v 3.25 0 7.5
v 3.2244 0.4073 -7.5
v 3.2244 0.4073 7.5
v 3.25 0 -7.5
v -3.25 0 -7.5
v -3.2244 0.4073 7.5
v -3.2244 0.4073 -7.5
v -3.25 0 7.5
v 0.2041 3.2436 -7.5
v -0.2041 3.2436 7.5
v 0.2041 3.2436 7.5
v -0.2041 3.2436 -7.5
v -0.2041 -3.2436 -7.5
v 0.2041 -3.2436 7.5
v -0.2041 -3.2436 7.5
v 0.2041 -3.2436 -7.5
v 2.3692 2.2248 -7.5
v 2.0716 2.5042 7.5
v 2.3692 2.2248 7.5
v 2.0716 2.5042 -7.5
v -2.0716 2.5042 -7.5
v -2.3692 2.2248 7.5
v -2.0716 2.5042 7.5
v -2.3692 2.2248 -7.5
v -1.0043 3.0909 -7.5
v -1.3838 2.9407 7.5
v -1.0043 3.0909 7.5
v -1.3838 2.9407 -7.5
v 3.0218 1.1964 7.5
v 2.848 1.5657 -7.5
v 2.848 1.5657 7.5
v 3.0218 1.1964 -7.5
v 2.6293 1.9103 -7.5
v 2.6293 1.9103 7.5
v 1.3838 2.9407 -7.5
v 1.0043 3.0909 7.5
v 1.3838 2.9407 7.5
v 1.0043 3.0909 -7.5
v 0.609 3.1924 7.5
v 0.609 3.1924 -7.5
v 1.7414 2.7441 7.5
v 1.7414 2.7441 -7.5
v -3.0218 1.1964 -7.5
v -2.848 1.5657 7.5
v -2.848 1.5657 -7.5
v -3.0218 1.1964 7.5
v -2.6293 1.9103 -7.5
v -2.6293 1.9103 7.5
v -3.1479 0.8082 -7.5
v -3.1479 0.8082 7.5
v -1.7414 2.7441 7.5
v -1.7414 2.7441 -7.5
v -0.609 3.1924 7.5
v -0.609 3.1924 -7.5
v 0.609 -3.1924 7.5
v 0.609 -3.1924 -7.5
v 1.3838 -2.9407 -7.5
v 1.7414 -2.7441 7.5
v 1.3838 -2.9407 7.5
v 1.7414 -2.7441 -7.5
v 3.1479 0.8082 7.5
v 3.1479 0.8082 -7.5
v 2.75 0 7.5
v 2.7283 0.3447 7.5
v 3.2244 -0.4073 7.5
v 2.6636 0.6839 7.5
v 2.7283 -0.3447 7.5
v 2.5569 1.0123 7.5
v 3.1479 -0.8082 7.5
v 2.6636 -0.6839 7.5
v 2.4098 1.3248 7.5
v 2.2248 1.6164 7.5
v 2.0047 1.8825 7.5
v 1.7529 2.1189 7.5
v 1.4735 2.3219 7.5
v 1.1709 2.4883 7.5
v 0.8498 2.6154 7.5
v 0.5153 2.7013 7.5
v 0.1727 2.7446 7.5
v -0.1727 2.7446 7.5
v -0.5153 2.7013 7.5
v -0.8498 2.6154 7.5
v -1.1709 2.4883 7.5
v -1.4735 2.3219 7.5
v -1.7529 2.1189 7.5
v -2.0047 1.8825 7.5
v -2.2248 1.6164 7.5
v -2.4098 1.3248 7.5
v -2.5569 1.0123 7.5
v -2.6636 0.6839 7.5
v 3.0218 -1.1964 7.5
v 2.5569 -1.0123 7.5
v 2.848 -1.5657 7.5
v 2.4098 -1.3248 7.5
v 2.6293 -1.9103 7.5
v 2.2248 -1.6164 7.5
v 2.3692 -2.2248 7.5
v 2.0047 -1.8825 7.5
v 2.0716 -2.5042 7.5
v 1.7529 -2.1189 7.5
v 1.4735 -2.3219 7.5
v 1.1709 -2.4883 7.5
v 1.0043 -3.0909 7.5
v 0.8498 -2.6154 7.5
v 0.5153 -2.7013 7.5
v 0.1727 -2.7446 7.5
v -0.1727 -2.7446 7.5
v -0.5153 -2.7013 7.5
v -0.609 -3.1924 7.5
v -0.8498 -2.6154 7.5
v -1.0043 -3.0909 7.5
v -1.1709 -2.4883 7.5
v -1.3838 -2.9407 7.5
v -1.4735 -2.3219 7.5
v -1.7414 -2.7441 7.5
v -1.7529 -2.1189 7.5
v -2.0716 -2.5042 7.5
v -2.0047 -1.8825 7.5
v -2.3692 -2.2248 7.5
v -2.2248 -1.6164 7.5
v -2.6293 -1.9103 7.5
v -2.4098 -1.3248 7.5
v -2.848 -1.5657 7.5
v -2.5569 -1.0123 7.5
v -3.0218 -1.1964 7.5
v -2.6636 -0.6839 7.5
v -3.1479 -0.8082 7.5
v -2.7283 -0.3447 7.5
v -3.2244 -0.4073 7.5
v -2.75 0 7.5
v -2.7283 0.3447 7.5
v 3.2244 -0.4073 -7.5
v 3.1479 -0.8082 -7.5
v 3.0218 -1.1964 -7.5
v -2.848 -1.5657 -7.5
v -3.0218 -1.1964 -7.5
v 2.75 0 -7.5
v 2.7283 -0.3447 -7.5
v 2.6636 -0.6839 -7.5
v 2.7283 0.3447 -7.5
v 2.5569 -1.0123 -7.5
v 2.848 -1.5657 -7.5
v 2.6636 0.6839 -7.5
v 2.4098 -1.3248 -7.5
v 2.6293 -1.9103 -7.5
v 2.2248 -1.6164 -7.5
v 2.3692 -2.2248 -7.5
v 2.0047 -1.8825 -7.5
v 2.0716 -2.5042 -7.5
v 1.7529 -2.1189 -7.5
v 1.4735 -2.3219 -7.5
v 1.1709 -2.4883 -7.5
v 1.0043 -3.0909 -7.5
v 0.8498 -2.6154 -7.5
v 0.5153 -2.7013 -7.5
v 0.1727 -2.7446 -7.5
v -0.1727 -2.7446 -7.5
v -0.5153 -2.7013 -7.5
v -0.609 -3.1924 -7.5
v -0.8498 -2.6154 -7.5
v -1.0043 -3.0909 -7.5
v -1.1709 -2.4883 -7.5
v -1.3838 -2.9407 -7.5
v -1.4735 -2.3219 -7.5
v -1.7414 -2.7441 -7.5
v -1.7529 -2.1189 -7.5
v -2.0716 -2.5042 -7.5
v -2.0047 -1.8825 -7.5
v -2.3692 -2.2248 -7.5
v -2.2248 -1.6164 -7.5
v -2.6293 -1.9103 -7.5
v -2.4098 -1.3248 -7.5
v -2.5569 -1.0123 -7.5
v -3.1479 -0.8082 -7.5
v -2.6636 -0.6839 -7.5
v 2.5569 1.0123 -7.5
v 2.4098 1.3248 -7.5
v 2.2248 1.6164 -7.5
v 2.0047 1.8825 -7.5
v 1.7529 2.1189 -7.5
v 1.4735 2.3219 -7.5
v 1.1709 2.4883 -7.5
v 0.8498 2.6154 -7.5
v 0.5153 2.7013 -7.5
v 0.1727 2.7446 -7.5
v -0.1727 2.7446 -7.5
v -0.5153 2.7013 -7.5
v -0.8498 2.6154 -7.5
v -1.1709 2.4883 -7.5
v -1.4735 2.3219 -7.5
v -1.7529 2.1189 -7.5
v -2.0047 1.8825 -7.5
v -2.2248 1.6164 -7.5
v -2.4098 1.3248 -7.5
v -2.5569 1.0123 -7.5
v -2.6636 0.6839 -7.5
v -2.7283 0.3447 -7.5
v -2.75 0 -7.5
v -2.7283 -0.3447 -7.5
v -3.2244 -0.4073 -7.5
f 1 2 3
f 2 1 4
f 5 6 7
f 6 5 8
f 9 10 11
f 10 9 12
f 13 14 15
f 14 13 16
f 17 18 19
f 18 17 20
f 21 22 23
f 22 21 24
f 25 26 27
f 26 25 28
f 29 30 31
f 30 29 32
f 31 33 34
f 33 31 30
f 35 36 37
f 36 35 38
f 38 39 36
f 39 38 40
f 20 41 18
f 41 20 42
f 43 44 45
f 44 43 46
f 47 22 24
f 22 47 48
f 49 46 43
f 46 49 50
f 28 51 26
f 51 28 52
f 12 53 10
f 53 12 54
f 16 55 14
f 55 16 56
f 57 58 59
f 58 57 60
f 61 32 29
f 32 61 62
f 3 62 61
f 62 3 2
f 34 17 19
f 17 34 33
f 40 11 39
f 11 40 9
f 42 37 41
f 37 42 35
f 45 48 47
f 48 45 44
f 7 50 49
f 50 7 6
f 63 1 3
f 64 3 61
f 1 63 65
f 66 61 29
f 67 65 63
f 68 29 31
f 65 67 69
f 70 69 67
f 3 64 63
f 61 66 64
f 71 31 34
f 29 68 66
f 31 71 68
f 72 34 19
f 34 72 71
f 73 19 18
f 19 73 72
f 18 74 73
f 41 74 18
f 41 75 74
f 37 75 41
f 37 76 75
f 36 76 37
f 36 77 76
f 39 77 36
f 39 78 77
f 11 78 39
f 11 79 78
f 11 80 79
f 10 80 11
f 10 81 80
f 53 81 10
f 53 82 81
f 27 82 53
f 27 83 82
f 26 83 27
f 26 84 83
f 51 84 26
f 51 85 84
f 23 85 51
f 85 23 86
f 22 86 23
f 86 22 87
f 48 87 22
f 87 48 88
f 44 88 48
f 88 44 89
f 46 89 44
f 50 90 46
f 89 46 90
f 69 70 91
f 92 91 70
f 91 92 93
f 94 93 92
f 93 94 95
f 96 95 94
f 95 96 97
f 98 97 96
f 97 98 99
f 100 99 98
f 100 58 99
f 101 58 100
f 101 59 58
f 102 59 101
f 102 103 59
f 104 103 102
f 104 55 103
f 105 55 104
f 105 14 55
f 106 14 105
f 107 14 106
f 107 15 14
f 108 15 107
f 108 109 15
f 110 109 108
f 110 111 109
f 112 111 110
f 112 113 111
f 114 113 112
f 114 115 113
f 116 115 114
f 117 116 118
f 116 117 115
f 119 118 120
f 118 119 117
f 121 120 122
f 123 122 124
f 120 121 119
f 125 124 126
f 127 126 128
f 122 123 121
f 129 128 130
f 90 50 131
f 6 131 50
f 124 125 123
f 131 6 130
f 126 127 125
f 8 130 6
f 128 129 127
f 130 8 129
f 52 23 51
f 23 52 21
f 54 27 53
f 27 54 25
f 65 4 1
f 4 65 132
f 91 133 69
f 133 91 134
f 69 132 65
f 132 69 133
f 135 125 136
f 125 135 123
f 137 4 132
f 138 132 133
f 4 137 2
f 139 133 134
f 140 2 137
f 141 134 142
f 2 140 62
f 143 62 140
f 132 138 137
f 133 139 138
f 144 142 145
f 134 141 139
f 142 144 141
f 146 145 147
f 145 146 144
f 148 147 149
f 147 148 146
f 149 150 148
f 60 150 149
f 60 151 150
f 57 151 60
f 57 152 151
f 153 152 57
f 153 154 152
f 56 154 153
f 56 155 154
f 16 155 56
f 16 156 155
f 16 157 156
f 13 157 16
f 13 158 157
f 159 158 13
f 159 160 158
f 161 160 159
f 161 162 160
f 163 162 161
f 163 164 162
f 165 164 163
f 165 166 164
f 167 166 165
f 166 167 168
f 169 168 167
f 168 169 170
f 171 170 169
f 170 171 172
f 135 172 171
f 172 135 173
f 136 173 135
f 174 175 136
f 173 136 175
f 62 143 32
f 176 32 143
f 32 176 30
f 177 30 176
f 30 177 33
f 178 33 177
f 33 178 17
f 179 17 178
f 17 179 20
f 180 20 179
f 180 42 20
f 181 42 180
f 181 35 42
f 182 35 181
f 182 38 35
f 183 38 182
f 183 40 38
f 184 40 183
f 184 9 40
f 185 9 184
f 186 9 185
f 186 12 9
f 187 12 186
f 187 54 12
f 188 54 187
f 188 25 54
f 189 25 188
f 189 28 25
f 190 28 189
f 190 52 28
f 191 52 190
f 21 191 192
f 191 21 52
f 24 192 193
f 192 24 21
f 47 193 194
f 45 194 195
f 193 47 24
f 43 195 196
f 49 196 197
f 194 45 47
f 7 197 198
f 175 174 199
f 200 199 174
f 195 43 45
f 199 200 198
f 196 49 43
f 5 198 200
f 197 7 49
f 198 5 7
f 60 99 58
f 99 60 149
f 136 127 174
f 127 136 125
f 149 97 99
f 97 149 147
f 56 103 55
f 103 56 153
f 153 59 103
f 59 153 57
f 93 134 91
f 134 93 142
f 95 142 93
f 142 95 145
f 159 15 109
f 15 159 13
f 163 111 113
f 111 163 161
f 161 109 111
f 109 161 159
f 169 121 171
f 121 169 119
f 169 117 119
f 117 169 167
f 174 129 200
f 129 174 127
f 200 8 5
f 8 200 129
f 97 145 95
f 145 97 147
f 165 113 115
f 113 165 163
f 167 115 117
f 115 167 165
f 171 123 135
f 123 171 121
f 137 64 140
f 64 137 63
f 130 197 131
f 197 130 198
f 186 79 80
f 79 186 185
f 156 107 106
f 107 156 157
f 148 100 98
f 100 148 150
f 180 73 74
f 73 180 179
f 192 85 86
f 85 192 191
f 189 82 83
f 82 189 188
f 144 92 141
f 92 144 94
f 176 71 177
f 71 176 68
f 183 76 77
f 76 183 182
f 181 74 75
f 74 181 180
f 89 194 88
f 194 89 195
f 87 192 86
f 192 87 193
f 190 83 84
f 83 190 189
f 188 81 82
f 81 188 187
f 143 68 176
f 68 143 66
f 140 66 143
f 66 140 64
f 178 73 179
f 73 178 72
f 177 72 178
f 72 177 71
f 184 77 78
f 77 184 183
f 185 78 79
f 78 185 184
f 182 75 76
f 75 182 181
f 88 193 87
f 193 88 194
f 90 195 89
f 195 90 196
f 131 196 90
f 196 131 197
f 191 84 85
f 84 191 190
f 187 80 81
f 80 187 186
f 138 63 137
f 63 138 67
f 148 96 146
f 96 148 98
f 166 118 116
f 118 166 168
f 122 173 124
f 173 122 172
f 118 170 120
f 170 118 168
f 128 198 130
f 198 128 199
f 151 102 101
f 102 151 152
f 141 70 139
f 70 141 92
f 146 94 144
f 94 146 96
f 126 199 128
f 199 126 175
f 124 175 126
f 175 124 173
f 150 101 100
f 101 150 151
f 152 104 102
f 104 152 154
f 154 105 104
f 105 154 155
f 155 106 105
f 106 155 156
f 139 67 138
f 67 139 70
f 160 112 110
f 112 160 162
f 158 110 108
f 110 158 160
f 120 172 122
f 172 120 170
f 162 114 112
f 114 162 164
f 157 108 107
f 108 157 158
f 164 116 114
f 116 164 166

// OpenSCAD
$fn = 50;


difference() {
	union() {
		translate(v = [0, 0, -7.5000000000]) {
			cylinder(h = 15, r = 3.2500000000);
		}
	}
	union() {
		translate(v = [0, 0, -100.0000000000]) {
			cylinder(h = 200, r = 2.7500000000);
		}
	}
}
